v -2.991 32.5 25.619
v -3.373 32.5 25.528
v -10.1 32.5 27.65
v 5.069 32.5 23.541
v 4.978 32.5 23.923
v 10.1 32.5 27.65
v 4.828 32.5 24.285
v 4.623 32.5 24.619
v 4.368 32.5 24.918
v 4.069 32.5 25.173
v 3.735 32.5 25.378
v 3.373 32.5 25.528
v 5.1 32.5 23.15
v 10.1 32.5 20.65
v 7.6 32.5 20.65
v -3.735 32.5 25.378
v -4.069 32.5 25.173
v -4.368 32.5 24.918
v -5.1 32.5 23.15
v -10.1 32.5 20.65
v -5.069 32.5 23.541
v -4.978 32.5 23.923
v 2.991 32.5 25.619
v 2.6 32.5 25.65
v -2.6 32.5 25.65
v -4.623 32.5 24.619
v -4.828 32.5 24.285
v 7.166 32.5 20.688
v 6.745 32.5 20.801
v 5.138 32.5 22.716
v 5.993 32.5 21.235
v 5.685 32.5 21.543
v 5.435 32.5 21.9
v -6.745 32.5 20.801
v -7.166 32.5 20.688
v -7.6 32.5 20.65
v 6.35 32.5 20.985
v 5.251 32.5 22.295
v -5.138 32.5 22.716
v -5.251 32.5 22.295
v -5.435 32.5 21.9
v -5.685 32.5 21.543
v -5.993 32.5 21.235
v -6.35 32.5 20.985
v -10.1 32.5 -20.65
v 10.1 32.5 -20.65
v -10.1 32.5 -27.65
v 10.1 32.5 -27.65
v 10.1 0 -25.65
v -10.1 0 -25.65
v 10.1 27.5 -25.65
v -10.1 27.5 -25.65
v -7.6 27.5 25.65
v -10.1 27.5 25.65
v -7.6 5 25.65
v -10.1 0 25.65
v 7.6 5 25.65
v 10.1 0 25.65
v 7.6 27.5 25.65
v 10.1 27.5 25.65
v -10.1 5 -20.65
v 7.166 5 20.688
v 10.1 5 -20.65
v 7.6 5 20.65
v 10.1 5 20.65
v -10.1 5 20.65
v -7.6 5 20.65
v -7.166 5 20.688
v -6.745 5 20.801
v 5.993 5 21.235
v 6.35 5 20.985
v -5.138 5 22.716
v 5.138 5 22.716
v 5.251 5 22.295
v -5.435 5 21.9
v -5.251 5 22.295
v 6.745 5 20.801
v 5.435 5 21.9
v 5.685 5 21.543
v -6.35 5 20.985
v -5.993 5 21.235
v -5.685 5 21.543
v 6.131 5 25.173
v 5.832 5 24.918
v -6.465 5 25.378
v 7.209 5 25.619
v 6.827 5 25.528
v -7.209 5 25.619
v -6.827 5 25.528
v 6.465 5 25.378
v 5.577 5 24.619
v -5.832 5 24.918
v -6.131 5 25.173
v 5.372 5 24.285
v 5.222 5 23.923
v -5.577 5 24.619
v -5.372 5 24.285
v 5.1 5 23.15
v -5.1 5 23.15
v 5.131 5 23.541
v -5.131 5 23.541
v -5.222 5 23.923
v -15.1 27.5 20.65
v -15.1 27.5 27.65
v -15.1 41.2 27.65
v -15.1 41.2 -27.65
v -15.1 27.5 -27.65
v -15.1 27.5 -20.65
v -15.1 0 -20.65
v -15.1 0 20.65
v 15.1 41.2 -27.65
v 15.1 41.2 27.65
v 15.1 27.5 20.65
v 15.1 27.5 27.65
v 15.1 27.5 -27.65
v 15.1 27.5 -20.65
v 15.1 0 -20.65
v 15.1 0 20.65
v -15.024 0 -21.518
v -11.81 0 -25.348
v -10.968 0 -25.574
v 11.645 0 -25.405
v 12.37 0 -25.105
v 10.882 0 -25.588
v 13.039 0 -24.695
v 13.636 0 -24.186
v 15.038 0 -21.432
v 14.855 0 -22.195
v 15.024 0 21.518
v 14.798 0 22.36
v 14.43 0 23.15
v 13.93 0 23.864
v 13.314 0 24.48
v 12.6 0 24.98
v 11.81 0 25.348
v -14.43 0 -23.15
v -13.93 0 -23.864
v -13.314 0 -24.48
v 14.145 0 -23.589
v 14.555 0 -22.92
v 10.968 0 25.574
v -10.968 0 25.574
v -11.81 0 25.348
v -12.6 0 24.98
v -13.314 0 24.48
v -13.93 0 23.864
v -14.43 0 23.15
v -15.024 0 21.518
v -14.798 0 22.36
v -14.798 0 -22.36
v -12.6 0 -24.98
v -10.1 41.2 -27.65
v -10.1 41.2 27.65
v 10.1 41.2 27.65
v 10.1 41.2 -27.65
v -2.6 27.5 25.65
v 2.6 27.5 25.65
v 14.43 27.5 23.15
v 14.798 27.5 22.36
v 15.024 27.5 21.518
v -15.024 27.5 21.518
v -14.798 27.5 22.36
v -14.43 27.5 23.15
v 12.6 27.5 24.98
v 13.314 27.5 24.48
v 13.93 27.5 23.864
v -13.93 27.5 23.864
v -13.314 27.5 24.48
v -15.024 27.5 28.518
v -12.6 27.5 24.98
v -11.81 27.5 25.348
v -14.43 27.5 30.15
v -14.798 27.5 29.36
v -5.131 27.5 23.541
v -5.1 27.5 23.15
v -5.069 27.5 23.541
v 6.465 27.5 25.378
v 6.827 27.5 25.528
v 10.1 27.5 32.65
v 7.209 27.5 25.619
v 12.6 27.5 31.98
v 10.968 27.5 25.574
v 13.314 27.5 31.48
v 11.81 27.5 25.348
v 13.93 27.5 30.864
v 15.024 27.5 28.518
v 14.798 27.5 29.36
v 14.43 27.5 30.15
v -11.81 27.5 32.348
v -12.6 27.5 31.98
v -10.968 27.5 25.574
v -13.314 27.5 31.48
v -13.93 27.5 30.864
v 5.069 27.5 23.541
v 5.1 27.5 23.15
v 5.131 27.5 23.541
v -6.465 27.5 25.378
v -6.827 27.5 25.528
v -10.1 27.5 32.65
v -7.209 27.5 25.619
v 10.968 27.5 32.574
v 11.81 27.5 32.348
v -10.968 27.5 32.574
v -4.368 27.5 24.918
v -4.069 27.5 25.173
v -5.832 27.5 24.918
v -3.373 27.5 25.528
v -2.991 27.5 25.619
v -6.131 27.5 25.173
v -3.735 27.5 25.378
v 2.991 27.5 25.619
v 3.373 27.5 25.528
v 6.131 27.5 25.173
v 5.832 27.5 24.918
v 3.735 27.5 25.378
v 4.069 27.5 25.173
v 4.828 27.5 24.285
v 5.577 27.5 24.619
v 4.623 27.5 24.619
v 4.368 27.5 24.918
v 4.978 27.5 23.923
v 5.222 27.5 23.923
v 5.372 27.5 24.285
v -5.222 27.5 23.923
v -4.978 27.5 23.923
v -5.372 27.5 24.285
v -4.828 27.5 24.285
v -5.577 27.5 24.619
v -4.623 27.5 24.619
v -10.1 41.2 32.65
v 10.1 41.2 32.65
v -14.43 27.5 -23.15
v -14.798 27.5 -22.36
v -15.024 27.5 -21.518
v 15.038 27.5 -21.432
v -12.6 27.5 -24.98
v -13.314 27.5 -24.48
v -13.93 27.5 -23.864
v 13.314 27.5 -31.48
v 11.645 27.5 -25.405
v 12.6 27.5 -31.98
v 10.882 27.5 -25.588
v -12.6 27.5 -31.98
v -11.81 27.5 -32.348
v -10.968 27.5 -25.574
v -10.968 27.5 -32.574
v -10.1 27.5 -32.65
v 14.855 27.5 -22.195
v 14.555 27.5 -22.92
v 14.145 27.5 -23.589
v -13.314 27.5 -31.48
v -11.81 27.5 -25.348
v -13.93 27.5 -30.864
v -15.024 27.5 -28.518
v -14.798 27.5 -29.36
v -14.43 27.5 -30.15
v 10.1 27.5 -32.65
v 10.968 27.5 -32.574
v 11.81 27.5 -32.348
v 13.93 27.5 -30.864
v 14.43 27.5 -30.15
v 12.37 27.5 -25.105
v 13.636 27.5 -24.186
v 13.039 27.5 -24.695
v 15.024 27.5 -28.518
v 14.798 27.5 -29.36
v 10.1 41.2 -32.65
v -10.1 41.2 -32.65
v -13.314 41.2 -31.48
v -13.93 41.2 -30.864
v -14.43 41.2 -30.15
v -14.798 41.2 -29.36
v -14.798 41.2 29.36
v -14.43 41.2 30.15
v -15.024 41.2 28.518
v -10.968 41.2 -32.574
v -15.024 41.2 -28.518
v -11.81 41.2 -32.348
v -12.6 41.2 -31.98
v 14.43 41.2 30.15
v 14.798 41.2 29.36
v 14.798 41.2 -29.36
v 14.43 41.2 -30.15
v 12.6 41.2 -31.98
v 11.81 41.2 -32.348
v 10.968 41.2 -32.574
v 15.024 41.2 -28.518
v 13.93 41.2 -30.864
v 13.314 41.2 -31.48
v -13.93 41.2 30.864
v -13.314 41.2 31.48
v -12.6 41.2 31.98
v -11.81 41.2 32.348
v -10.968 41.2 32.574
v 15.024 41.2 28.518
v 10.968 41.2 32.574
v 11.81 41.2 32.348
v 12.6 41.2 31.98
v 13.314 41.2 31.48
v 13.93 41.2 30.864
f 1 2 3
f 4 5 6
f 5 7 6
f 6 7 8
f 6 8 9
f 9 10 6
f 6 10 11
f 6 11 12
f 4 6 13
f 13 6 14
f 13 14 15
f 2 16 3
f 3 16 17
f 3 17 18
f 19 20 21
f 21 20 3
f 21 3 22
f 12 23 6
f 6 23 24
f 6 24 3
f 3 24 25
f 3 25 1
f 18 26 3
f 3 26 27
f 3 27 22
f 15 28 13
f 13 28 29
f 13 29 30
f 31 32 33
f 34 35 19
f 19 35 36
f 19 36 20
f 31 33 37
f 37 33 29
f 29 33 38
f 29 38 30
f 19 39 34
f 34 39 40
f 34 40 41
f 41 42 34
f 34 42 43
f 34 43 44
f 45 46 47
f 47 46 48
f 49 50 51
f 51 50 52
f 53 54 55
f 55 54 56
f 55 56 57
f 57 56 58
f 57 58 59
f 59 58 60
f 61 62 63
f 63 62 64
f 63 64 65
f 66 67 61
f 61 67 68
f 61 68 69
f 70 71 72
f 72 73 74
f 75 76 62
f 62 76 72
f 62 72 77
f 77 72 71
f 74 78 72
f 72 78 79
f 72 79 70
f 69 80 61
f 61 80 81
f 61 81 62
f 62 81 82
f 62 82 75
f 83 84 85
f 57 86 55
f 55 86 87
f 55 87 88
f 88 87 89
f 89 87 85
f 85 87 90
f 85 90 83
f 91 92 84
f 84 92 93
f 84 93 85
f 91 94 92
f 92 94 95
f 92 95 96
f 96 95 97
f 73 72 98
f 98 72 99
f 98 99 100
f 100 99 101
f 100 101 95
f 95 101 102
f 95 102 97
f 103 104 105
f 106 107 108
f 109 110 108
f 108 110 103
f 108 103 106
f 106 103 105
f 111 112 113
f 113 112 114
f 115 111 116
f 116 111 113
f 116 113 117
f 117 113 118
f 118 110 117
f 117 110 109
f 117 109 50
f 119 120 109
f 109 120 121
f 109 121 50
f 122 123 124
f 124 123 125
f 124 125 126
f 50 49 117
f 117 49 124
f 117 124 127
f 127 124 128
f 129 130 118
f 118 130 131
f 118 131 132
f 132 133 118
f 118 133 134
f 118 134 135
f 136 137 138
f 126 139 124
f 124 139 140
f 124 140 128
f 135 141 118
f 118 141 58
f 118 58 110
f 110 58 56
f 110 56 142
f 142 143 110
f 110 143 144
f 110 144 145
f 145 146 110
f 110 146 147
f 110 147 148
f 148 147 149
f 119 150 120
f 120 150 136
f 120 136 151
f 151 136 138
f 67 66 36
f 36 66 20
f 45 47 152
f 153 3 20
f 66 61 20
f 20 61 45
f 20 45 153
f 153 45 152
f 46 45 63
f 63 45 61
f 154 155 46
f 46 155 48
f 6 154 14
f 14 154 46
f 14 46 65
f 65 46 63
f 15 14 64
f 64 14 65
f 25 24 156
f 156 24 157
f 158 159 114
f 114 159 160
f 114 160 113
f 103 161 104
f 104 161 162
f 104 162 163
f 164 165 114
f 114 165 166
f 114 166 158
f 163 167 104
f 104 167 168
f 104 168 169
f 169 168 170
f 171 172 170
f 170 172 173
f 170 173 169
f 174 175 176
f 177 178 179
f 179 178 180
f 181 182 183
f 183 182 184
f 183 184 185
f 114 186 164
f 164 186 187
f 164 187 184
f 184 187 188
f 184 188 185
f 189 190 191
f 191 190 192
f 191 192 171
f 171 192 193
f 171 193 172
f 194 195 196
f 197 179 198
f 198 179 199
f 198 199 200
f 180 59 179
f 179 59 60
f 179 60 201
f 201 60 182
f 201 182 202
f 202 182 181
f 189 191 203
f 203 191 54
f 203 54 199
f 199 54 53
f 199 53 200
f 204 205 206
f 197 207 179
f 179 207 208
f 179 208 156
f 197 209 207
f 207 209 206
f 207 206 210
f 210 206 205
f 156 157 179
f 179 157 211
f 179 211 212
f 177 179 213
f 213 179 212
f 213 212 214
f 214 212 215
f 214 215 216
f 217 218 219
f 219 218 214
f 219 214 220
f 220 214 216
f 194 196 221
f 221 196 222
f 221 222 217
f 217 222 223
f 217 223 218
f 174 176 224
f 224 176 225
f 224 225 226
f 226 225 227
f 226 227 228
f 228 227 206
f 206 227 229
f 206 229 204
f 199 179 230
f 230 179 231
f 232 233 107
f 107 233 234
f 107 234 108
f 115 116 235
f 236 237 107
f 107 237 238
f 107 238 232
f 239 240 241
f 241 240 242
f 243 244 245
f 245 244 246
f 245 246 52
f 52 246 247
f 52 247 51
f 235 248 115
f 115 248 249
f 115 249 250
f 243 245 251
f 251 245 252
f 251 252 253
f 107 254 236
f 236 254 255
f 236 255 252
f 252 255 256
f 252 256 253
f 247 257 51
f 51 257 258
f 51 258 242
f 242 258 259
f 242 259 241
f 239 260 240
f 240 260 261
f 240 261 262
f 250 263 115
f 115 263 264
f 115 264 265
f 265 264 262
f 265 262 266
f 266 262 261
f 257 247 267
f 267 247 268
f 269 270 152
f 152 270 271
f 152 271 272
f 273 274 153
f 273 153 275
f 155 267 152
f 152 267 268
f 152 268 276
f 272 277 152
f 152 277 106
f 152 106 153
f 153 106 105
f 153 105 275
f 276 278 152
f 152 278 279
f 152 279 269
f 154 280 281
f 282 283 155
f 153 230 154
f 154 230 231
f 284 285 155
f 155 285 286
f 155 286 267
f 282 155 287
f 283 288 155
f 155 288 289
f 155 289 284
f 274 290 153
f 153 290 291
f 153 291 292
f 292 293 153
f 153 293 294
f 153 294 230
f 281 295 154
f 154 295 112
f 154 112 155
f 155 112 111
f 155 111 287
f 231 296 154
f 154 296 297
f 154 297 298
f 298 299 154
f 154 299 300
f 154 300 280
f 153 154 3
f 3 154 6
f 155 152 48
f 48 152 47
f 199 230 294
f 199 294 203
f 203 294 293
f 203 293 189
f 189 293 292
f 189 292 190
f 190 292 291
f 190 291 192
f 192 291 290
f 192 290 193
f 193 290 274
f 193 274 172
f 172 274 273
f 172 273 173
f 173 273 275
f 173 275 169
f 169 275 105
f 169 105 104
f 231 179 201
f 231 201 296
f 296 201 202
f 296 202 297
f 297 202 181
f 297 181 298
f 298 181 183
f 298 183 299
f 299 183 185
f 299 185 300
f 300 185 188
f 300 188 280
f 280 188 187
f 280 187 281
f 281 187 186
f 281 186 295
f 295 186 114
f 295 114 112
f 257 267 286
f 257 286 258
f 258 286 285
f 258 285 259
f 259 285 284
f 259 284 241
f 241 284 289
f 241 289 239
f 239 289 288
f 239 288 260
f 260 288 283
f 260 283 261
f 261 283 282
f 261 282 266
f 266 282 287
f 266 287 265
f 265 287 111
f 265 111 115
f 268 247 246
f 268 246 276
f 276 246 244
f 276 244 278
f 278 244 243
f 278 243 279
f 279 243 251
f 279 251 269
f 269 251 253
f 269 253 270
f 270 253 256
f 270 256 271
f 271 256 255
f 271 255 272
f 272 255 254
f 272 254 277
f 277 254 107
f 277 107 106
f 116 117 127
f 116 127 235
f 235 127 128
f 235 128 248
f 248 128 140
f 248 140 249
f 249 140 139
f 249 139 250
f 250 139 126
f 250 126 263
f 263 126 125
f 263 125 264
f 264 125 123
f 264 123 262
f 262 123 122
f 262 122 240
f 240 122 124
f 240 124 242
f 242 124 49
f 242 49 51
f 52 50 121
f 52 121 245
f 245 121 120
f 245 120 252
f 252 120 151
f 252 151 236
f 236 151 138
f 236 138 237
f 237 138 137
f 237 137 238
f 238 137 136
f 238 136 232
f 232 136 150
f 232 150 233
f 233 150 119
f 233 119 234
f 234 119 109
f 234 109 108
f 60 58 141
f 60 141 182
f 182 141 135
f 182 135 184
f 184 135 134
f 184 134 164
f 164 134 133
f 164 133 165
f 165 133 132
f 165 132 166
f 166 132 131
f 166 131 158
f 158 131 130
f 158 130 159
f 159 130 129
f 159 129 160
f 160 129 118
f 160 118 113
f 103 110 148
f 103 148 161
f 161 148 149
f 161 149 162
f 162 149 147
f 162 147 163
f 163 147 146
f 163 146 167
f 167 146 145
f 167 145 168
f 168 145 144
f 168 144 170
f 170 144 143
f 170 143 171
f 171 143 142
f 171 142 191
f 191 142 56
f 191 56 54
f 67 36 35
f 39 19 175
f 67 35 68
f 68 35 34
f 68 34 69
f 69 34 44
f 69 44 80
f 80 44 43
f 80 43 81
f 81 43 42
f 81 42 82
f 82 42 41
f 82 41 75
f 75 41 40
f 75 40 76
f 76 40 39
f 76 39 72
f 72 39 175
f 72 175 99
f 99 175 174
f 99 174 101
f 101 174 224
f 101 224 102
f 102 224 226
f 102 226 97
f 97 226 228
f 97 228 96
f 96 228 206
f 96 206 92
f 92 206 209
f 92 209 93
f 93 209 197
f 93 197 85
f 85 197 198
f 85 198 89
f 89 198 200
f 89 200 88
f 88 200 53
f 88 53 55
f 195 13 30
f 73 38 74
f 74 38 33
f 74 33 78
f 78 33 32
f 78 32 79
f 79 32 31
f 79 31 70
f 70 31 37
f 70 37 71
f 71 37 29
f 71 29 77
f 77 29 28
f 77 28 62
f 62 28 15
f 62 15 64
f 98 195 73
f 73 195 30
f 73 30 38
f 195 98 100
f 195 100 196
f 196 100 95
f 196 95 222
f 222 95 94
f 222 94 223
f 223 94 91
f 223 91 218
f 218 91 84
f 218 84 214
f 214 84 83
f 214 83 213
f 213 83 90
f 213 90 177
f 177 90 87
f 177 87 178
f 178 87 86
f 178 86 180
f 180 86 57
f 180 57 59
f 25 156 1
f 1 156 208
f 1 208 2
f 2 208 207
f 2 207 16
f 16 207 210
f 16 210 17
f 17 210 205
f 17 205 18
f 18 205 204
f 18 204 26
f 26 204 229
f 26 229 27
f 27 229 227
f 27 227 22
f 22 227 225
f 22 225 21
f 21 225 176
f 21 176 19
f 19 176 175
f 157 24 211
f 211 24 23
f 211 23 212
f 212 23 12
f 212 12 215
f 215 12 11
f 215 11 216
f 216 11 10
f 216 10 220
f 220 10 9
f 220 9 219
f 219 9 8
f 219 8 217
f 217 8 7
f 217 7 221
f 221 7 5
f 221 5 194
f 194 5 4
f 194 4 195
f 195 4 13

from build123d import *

# Parameters (mm, degrees)
SKETCH1_W           = 30.2
SKETCH1_H           = 51.3
BOSS_EXTRUDE1_DEPTH = 5
BOSS_EXTRUDE2_DEPTH = 27.5
SKETCH3_W           = 30.2
SKETCH3_H           = 5
BOSS_EXTRUDE3_DEPTH = 7
SKETCH4_W           = 30.2
SKETCH4_H           = 5
BOSS_EXTRUDE4_DEPTH = 7
SKETCH5_W           = 30.2
SKETCH5_H           = 65.3
SKETCH5_W_2         = 20.2
SKETCH5_H_2         = 55.3
BOSS_EXTRUDE5_DEPTH = 8.7
FILLET1_R           = 5
FILLET2_R           = 2.5
FILLET3_R           = 2.5


with BuildPart() as part:
    # Sketch1 → Boss-Extrude1 (new body)
    with BuildSketch(Plane(origin=(0, 0, 0), x_dir=(1, 0, 0), z_dir=(0, 1, 0))):
        Rectangle(SKETCH1_W, SKETCH1_H)
    extrude(amount=BOSS_EXTRUDE1_DEPTH)

    # Sketch2 → Boss-Extrude2 (add)
    with BuildSketch(Plane(origin=(0, 5, 0), x_dir=(1, 0, 0), z_dir=(0, 1, 0))):
        Polygon((10.1, -20.65), (5.1, -20.65), (5.1, -25.65), (15.1, -25.65), (15.1, 25.65), (-15.1, 25.65), (-15.1, -25.65), (-5.1, -25.65), (-5.1, -20.65), (-10.1, -20.65), (-10.1, 20.65), (10.1, 20.65), align=None)
    extrude(amount=BOSS_EXTRUDE2_DEPTH)

    # Sketch3 → Boss-Extrude3 (add)
    with BuildSketch(Plane.XY.offset(25.65)):
        with Locations((0, 30)):
            Rectangle(SKETCH3_W, SKETCH3_H)
    extrude(amount=BOSS_EXTRUDE3_DEPTH)

    # Sketch4 → Boss-Extrude4 (add)
    with BuildSketch(Plane(origin=(0, 0, -25.65), x_dir=(-1, 0, 0), z_dir=(0, 0, -1))):
        with Locations((0, 30)):
            Rectangle(SKETCH4_W, SKETCH4_H)
    extrude(amount=BOSS_EXTRUDE4_DEPTH)

    # Sketch5 → Boss-Extrude5 (add)
    with BuildSketch(Plane(origin=(0, 32.5, 0), x_dir=(1, 0, 0), z_dir=(0, 1, 0))):
        Rectangle(SKETCH5_W, SKETCH5_H)
        Rectangle(SKETCH5_W_2, SKETCH5_H_2, mode=Mode.SUBTRACT)
    extrude(amount=BOSS_EXTRUDE5_DEPTH)

    # Fillet1
    fillet1_edges = [part.edges().sort_by_distance(p)[0] for p in [
        (15.1, 13.75, 25.65),
        (-15.1, 13.75, 25.65),
        (-15.1, 34.35, 32.65),
        (15.1, 34.35, 32.65),
        (-15.1, 13.75, -25.65),
        (15.1, 13.75, -25.65),
        (15.1, 34.35, -32.65),
        (-15.1, 34.35, -32.65),
    ]]
    fillet(fillet1_edges, radius=FILLET1_R)

    # Fillet2
    fillet2_edges = [part.edges().sort_by_distance(p)[0] for p in [
        (-5.1, 16.25, 25.65),
        (5.1, 16.25, 25.65),
        (-5.1, 18.75, 20.65),
        (5.1, 18.75, 20.65),
    ]]
    fillet(fillet2_edges, radius=FILLET2_R - 0.0001)  # a hair under: the kernel refuses the full size

    # Fillet3
    fillet3_edges = [part.edges().sort_by_distance(p)[0] for p in [
        (-5.1, 30, 25.65),
        (5.1, 30, 25.65),
    ]]
    fillet(fillet3_edges, radius=FILLET3_R - 0.0001)  # a hair under: the kernel refuses the full size


solid = part.part
